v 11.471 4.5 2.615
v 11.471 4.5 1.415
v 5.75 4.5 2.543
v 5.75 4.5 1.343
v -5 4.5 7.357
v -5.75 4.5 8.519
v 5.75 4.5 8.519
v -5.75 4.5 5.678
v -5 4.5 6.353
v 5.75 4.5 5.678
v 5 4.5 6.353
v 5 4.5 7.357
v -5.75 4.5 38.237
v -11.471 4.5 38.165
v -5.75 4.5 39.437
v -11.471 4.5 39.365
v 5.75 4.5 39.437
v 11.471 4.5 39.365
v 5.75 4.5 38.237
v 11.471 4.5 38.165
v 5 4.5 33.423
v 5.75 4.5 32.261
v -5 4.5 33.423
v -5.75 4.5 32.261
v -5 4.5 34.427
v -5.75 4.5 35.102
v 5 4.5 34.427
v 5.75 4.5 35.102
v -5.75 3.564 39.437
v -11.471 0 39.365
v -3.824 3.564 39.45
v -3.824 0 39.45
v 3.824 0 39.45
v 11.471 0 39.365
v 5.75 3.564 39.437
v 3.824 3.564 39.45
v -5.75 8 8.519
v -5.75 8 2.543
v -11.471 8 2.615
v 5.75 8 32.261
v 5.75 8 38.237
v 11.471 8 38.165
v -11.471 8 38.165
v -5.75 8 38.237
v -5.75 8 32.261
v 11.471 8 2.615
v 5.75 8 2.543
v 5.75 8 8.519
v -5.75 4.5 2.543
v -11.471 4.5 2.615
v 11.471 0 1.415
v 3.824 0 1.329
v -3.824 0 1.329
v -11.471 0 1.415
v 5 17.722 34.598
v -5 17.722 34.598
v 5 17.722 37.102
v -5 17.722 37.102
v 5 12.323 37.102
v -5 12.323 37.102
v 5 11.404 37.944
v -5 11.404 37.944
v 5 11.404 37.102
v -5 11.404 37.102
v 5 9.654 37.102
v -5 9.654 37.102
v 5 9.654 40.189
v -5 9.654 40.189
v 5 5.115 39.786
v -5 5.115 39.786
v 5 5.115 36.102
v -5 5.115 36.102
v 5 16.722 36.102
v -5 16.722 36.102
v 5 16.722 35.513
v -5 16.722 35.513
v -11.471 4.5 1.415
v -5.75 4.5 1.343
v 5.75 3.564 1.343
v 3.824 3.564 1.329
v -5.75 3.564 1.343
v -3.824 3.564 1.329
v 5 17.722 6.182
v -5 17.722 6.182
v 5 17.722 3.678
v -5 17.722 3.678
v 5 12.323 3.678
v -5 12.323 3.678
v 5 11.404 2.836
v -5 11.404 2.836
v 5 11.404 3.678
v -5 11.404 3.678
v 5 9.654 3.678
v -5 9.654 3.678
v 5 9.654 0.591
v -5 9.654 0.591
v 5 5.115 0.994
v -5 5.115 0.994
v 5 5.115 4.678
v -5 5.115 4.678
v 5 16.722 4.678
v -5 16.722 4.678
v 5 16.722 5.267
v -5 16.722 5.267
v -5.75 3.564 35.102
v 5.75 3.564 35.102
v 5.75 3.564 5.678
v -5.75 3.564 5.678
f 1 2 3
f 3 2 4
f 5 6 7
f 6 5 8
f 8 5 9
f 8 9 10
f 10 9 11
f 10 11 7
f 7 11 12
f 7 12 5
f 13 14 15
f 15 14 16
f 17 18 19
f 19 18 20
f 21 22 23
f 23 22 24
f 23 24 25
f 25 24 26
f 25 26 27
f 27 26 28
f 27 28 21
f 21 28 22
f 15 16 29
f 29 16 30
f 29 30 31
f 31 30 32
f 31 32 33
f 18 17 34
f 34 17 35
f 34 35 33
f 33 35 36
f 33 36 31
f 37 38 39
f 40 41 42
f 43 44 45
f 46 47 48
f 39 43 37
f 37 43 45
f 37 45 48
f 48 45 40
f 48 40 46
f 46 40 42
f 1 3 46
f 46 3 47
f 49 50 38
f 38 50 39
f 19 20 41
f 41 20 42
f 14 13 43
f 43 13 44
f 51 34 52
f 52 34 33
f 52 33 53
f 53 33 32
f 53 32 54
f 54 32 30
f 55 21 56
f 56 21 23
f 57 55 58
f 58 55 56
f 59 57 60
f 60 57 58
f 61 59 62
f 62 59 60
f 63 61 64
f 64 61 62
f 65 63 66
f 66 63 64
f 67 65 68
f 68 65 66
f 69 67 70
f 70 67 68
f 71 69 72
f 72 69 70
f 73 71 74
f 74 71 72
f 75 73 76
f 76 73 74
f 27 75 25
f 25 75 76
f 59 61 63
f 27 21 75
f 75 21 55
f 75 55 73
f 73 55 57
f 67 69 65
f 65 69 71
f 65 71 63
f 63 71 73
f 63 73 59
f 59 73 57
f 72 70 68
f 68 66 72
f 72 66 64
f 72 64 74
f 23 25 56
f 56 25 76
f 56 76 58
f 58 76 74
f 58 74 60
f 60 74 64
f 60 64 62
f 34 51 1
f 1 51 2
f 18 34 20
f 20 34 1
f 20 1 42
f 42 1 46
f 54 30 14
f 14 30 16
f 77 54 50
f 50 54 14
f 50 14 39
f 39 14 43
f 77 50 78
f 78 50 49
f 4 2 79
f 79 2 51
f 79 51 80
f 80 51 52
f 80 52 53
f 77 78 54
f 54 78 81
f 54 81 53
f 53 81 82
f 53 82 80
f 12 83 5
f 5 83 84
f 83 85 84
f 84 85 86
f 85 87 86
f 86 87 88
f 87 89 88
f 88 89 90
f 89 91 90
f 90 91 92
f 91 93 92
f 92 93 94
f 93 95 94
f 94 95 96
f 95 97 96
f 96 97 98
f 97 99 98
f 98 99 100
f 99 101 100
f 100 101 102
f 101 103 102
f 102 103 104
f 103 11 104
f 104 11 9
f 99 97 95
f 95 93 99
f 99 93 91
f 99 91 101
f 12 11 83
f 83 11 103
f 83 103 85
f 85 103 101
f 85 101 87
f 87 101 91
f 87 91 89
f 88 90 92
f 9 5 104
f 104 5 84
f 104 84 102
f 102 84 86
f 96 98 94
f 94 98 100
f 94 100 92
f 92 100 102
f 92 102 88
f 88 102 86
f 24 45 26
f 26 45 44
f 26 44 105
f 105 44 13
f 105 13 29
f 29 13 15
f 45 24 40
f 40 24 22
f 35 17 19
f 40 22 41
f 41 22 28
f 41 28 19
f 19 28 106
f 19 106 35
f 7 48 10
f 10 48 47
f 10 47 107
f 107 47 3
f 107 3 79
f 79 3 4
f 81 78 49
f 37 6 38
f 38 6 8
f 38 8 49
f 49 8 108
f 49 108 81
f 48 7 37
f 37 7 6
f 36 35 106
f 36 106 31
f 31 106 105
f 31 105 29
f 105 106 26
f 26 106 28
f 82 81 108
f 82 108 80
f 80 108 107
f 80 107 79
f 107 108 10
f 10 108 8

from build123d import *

# Parameters (mm, degrees)
SKETCH1_W           = 160
SKETCH1_H           = 80
BOSS_EXTRUDE1_DEPTH = 8
SKETCH2_W           = 160
SKETCH2_H           = 80
CUT_EXTRUDE1_DEPTH  = 90.799777283
CUT_EXTRUDE5_DEPTH  = 3.5
SKETCH6_W           = 10.5
SKETCH6_H           = 11
CUT_EXTRUDE6_DEPTH  = 3.5
BOSS_EXTRUDE2_DEPTH = 5
SKETCH13_W          = 202.95713844
SKETCH13_H          = 134.766583704
SKETCH13_W_2        = 22.9414187
SKETCH13_H_2        = 39.597863293
CUT_EXTRUDE7_DEPTH  = 10
CUT_EXTRUDE8_DEPTH  = 3.5
CUT_EXTRUDE9_START  = -2
SKETCH16_W          = 11.5
SKETCH16_H          = 0.936372799
CUT_EXTRUDE9_DEPTH  = 12


with BuildPart() as part:
    # Sketch1 → Boss-Extrude1 (new body)
    with BuildSketch(Plane(origin=(0, 0, 0), x_dir=(1, 0, 0), z_dir=(0, 1, 0))):
        Rectangle(SKETCH1_W, SKETCH1_H)
    extrude(amount=BOSS_EXTRUDE1_DEPTH)

    # Sketch2 → Cut-Extrude1 (cut, through all)
    with BuildSketch(Plane(origin=(0, 8, 0), x_dir=(1, 0, 0), z_dir=(0, 1, 0))):
        Rectangle(SKETCH2_W, SKETCH2_H)
        with BuildLine():
            ThreePointArc((-73.066951559, -31.066887131), (-71.100040398, -34.512464463), (-67.472075966, -36.118271655))
            ThreePointArc((-67.472075966, -36.118271655), (0, -39.461072151), (67.472075966, -36.118271655))
            ThreePointArc((67.472075966, -36.118271655), (71.100040398, -34.512464463), (73.066951559, -31.066887131))
            ThreePointArc((73.066951559, -31.066887131), (76.2, 0), (73.066951559, 31.066887131))
            ThreePointArc((73.066951559, 31.066887131), (71.100040398, 34.512464463), (67.472075966, 36.118271655))
            ThreePointArc((67.472075966, 36.118271655), (0, 39.461072151), (-67.472075966, 36.118271655))
            ThreePointArc((-67.472075966, 36.118271655), (-71.100040398, 34.512464463), (-73.066951559, 31.066887131))
            ThreePointArc((-73.066951559, 31.066887131), (-76.2, 0), (-73.066951559, -31.066887131))
        make_face(mode=Mode.SUBTRACT)
    extrude(amount=-CUT_EXTRUDE1_DEPTH, mode=Mode.SUBTRACT)

    # Sketch3 → Cut-Extrude5 (cut)
    with BuildSketch(Plane(origin=(0, 8, 0), x_dir=(1, 0, 0), z_dir=(0, 1, 0))):
        with BuildLine():
            ThreePointArc((-67.472075966, -36.118271655), (0, -39.461072151), (67.472075966, -36.118271655))
            ThreePointArc((67.472075966, -36.118271655), (71.100040398, -34.512464463), (73.066951559, -31.066887131))
            ThreePointArc((73.066951559, -31.066887131), (76.2, 0), (73.066951559, 31.066887131))
            ThreePointArc((73.066951559, 31.066887131), (71.100040398, 34.512464463), (67.472075966, 36.118271655))
            ThreePointArc((67.472075966, 36.118271655), (0, 39.461072151), (-67.472075966, 36.118271655))
            ThreePointArc((-67.472075966, 36.118271655), (-71.100040398, 34.512464463), (-73.066951559, 31.066887131))
            ThreePointArc((-73.066951559, 31.066887131), (-76.2, 0), (-73.066951559, -31.066887131))
            ThreePointArc((-73.066951559, -31.066887131), (-71.100040398, -34.512464463), (-67.472075966, -36.118271655))
        make_face()
        with BuildLine():
            ThreePointArc((-71.891114808, -30.827287598), (-70.295876764, -33.621778857), (-67.35346279, -34.924148163))
            ThreePointArc((-67.35346279, -34.924148163), (0, -38.261072151), (67.35346279, -34.924148163))
            ThreePointArc((67.35346279, -34.924148163), (70.295876764, -33.621778857), (71.891114808, -30.827287598))
            ThreePointArc((71.891114808, -30.827287598), (75, 0), (71.891114808, 30.827287598))
            ThreePointArc((71.891114808, 30.827287598), (70.295876764, 33.621778857), (67.35346279, 34.924148163))
            ThreePointArc((67.35346279, 34.924148163), (0, 38.261072151), (-67.35346279, 34.924148163))
            ThreePointArc((-67.35346279, 34.924148163), (-70.295876764, 33.621778857), (-71.891114808, 30.827287598))
            ThreePointArc((-71.891114808, 30.827287598), (-75, 0), (-71.891114808, -30.827287598))
        make_face(mode=Mode.SUBTRACT)
    extrude(amount=-CUT_EXTRUDE5_DEPTH, mode=Mode.SUBTRACT)

    # Sketch6 → Cut-Extrude6 (cut)
    with BuildSketch(Plane(origin=(0, 8, 0), x_dir=(1, 0, 0), z_dir=(0, 1, 0))):
        with Locations((0, -38.261072151)):
            Rectangle(SKETCH6_W, SKETCH6_H)
    extrude(amount=-CUT_EXTRUDE6_DEPTH, mode=Mode.SUBTRACT)

    # Sketch5 → Boss-Extrude2 (add, symmetric)
    with BuildSketch(Plane(origin=(0, 0, 0), x_dir=(0, 0, -1), z_dir=(1, 0, 0))):
        Polygon((-33.423273075, 4.5), (-34.597814339, 17.722195507), (-37.101805657, 17.722195507), (-37.101805657, 12.32309307), (-37.944117027, 11.404206925), (-37.101805657, 11.404206925), (-37.101805657, 9.653632864), (-40.188830506, 9.653632864), (-39.785685871, 5.115301729), (-36.101805657, 5.115301729), (-36.101805657, 8.653632864), (-36.101805657, 16.722195507), (-35.51292103, 16.722195507), (-34.427210798, 4.5), align=None)
    extrude(amount=BOSS_EXTRUDE2_DEPTH, both=True)

    # Sketch13 → Cut-Extrude7 (cut)
    with BuildSketch(Plane(origin=(0, 0, 0), x_dir=(1, 0, 0), z_dir=(0, 1, 0))):
        with Locations((1.229729327, -18.57056388)):
            Rectangle(SKETCH13_W, SKETCH13_H)
        with Locations((0, -40.188830507)):
            Rectangle(SKETCH13_W_2, SKETCH13_H_2, mode=Mode.SUBTRACT)
    extrude(amount=CUT_EXTRUDE7_DEPTH, mode=Mode.SUBTRACT)

    # Mirror2: part across plane


with BuildPart() as part_1:
    add(part.part)
    add(part.part.mirror(Plane(origin=(-11.47070935, 10, 20.38989886), x_dir=(1, 0, 0), z_dir=(0, 0, 1))))

    # Sketch14 → Cut-Extrude8 (cut)
    with BuildSketch(Plane(origin=(0, 8, 0), x_dir=(1, 0, 0), z_dir=(0, 1, 0))):
        Polygon((-5.75, -38.24084723), (-5.75, -32.261072151), (5.75, -32.261072151), (5.75, -38.24084723), (5.25, -38.24084723), (5.25, -32.761072151), (-5.25, -32.761072151), (-5.25, -38.24084723), align=None)
        Polygon((5.75, -2.538950489), (5.75, -8.518725569), (-5.75, -8.518725569), (-5.75, -2.538950489), (-5.25, -2.538950489), (-5.25, -8.018725569), (5.25, -8.018725569), (5.25, -2.538950489), align=None)
    extrude(amount=-CUT_EXTRUDE8_DEPTH, mode=Mode.SUBTRACT)

    # Sketch16 → Cut-Extrude9 (cut)
    with BuildSketch(Plane.XY.offset(37.101805657).offset(CUT_EXTRUDE9_START)):
        with Locations((0, 4.0318136)):
            Rectangle(SKETCH16_W, SKETCH16_H)
    cut_extrude9 = extrude(amount=CUT_EXTRUDE9_DEPTH, mode=Mode.SUBTRACT)

    # Mirror3: Cut-Extrude9 across plane
    add(cut_extrude9.mirror(Plane.XY.offset(20.38989886)), mode=Mode.SUBTRACT)


solid = part_1.part
